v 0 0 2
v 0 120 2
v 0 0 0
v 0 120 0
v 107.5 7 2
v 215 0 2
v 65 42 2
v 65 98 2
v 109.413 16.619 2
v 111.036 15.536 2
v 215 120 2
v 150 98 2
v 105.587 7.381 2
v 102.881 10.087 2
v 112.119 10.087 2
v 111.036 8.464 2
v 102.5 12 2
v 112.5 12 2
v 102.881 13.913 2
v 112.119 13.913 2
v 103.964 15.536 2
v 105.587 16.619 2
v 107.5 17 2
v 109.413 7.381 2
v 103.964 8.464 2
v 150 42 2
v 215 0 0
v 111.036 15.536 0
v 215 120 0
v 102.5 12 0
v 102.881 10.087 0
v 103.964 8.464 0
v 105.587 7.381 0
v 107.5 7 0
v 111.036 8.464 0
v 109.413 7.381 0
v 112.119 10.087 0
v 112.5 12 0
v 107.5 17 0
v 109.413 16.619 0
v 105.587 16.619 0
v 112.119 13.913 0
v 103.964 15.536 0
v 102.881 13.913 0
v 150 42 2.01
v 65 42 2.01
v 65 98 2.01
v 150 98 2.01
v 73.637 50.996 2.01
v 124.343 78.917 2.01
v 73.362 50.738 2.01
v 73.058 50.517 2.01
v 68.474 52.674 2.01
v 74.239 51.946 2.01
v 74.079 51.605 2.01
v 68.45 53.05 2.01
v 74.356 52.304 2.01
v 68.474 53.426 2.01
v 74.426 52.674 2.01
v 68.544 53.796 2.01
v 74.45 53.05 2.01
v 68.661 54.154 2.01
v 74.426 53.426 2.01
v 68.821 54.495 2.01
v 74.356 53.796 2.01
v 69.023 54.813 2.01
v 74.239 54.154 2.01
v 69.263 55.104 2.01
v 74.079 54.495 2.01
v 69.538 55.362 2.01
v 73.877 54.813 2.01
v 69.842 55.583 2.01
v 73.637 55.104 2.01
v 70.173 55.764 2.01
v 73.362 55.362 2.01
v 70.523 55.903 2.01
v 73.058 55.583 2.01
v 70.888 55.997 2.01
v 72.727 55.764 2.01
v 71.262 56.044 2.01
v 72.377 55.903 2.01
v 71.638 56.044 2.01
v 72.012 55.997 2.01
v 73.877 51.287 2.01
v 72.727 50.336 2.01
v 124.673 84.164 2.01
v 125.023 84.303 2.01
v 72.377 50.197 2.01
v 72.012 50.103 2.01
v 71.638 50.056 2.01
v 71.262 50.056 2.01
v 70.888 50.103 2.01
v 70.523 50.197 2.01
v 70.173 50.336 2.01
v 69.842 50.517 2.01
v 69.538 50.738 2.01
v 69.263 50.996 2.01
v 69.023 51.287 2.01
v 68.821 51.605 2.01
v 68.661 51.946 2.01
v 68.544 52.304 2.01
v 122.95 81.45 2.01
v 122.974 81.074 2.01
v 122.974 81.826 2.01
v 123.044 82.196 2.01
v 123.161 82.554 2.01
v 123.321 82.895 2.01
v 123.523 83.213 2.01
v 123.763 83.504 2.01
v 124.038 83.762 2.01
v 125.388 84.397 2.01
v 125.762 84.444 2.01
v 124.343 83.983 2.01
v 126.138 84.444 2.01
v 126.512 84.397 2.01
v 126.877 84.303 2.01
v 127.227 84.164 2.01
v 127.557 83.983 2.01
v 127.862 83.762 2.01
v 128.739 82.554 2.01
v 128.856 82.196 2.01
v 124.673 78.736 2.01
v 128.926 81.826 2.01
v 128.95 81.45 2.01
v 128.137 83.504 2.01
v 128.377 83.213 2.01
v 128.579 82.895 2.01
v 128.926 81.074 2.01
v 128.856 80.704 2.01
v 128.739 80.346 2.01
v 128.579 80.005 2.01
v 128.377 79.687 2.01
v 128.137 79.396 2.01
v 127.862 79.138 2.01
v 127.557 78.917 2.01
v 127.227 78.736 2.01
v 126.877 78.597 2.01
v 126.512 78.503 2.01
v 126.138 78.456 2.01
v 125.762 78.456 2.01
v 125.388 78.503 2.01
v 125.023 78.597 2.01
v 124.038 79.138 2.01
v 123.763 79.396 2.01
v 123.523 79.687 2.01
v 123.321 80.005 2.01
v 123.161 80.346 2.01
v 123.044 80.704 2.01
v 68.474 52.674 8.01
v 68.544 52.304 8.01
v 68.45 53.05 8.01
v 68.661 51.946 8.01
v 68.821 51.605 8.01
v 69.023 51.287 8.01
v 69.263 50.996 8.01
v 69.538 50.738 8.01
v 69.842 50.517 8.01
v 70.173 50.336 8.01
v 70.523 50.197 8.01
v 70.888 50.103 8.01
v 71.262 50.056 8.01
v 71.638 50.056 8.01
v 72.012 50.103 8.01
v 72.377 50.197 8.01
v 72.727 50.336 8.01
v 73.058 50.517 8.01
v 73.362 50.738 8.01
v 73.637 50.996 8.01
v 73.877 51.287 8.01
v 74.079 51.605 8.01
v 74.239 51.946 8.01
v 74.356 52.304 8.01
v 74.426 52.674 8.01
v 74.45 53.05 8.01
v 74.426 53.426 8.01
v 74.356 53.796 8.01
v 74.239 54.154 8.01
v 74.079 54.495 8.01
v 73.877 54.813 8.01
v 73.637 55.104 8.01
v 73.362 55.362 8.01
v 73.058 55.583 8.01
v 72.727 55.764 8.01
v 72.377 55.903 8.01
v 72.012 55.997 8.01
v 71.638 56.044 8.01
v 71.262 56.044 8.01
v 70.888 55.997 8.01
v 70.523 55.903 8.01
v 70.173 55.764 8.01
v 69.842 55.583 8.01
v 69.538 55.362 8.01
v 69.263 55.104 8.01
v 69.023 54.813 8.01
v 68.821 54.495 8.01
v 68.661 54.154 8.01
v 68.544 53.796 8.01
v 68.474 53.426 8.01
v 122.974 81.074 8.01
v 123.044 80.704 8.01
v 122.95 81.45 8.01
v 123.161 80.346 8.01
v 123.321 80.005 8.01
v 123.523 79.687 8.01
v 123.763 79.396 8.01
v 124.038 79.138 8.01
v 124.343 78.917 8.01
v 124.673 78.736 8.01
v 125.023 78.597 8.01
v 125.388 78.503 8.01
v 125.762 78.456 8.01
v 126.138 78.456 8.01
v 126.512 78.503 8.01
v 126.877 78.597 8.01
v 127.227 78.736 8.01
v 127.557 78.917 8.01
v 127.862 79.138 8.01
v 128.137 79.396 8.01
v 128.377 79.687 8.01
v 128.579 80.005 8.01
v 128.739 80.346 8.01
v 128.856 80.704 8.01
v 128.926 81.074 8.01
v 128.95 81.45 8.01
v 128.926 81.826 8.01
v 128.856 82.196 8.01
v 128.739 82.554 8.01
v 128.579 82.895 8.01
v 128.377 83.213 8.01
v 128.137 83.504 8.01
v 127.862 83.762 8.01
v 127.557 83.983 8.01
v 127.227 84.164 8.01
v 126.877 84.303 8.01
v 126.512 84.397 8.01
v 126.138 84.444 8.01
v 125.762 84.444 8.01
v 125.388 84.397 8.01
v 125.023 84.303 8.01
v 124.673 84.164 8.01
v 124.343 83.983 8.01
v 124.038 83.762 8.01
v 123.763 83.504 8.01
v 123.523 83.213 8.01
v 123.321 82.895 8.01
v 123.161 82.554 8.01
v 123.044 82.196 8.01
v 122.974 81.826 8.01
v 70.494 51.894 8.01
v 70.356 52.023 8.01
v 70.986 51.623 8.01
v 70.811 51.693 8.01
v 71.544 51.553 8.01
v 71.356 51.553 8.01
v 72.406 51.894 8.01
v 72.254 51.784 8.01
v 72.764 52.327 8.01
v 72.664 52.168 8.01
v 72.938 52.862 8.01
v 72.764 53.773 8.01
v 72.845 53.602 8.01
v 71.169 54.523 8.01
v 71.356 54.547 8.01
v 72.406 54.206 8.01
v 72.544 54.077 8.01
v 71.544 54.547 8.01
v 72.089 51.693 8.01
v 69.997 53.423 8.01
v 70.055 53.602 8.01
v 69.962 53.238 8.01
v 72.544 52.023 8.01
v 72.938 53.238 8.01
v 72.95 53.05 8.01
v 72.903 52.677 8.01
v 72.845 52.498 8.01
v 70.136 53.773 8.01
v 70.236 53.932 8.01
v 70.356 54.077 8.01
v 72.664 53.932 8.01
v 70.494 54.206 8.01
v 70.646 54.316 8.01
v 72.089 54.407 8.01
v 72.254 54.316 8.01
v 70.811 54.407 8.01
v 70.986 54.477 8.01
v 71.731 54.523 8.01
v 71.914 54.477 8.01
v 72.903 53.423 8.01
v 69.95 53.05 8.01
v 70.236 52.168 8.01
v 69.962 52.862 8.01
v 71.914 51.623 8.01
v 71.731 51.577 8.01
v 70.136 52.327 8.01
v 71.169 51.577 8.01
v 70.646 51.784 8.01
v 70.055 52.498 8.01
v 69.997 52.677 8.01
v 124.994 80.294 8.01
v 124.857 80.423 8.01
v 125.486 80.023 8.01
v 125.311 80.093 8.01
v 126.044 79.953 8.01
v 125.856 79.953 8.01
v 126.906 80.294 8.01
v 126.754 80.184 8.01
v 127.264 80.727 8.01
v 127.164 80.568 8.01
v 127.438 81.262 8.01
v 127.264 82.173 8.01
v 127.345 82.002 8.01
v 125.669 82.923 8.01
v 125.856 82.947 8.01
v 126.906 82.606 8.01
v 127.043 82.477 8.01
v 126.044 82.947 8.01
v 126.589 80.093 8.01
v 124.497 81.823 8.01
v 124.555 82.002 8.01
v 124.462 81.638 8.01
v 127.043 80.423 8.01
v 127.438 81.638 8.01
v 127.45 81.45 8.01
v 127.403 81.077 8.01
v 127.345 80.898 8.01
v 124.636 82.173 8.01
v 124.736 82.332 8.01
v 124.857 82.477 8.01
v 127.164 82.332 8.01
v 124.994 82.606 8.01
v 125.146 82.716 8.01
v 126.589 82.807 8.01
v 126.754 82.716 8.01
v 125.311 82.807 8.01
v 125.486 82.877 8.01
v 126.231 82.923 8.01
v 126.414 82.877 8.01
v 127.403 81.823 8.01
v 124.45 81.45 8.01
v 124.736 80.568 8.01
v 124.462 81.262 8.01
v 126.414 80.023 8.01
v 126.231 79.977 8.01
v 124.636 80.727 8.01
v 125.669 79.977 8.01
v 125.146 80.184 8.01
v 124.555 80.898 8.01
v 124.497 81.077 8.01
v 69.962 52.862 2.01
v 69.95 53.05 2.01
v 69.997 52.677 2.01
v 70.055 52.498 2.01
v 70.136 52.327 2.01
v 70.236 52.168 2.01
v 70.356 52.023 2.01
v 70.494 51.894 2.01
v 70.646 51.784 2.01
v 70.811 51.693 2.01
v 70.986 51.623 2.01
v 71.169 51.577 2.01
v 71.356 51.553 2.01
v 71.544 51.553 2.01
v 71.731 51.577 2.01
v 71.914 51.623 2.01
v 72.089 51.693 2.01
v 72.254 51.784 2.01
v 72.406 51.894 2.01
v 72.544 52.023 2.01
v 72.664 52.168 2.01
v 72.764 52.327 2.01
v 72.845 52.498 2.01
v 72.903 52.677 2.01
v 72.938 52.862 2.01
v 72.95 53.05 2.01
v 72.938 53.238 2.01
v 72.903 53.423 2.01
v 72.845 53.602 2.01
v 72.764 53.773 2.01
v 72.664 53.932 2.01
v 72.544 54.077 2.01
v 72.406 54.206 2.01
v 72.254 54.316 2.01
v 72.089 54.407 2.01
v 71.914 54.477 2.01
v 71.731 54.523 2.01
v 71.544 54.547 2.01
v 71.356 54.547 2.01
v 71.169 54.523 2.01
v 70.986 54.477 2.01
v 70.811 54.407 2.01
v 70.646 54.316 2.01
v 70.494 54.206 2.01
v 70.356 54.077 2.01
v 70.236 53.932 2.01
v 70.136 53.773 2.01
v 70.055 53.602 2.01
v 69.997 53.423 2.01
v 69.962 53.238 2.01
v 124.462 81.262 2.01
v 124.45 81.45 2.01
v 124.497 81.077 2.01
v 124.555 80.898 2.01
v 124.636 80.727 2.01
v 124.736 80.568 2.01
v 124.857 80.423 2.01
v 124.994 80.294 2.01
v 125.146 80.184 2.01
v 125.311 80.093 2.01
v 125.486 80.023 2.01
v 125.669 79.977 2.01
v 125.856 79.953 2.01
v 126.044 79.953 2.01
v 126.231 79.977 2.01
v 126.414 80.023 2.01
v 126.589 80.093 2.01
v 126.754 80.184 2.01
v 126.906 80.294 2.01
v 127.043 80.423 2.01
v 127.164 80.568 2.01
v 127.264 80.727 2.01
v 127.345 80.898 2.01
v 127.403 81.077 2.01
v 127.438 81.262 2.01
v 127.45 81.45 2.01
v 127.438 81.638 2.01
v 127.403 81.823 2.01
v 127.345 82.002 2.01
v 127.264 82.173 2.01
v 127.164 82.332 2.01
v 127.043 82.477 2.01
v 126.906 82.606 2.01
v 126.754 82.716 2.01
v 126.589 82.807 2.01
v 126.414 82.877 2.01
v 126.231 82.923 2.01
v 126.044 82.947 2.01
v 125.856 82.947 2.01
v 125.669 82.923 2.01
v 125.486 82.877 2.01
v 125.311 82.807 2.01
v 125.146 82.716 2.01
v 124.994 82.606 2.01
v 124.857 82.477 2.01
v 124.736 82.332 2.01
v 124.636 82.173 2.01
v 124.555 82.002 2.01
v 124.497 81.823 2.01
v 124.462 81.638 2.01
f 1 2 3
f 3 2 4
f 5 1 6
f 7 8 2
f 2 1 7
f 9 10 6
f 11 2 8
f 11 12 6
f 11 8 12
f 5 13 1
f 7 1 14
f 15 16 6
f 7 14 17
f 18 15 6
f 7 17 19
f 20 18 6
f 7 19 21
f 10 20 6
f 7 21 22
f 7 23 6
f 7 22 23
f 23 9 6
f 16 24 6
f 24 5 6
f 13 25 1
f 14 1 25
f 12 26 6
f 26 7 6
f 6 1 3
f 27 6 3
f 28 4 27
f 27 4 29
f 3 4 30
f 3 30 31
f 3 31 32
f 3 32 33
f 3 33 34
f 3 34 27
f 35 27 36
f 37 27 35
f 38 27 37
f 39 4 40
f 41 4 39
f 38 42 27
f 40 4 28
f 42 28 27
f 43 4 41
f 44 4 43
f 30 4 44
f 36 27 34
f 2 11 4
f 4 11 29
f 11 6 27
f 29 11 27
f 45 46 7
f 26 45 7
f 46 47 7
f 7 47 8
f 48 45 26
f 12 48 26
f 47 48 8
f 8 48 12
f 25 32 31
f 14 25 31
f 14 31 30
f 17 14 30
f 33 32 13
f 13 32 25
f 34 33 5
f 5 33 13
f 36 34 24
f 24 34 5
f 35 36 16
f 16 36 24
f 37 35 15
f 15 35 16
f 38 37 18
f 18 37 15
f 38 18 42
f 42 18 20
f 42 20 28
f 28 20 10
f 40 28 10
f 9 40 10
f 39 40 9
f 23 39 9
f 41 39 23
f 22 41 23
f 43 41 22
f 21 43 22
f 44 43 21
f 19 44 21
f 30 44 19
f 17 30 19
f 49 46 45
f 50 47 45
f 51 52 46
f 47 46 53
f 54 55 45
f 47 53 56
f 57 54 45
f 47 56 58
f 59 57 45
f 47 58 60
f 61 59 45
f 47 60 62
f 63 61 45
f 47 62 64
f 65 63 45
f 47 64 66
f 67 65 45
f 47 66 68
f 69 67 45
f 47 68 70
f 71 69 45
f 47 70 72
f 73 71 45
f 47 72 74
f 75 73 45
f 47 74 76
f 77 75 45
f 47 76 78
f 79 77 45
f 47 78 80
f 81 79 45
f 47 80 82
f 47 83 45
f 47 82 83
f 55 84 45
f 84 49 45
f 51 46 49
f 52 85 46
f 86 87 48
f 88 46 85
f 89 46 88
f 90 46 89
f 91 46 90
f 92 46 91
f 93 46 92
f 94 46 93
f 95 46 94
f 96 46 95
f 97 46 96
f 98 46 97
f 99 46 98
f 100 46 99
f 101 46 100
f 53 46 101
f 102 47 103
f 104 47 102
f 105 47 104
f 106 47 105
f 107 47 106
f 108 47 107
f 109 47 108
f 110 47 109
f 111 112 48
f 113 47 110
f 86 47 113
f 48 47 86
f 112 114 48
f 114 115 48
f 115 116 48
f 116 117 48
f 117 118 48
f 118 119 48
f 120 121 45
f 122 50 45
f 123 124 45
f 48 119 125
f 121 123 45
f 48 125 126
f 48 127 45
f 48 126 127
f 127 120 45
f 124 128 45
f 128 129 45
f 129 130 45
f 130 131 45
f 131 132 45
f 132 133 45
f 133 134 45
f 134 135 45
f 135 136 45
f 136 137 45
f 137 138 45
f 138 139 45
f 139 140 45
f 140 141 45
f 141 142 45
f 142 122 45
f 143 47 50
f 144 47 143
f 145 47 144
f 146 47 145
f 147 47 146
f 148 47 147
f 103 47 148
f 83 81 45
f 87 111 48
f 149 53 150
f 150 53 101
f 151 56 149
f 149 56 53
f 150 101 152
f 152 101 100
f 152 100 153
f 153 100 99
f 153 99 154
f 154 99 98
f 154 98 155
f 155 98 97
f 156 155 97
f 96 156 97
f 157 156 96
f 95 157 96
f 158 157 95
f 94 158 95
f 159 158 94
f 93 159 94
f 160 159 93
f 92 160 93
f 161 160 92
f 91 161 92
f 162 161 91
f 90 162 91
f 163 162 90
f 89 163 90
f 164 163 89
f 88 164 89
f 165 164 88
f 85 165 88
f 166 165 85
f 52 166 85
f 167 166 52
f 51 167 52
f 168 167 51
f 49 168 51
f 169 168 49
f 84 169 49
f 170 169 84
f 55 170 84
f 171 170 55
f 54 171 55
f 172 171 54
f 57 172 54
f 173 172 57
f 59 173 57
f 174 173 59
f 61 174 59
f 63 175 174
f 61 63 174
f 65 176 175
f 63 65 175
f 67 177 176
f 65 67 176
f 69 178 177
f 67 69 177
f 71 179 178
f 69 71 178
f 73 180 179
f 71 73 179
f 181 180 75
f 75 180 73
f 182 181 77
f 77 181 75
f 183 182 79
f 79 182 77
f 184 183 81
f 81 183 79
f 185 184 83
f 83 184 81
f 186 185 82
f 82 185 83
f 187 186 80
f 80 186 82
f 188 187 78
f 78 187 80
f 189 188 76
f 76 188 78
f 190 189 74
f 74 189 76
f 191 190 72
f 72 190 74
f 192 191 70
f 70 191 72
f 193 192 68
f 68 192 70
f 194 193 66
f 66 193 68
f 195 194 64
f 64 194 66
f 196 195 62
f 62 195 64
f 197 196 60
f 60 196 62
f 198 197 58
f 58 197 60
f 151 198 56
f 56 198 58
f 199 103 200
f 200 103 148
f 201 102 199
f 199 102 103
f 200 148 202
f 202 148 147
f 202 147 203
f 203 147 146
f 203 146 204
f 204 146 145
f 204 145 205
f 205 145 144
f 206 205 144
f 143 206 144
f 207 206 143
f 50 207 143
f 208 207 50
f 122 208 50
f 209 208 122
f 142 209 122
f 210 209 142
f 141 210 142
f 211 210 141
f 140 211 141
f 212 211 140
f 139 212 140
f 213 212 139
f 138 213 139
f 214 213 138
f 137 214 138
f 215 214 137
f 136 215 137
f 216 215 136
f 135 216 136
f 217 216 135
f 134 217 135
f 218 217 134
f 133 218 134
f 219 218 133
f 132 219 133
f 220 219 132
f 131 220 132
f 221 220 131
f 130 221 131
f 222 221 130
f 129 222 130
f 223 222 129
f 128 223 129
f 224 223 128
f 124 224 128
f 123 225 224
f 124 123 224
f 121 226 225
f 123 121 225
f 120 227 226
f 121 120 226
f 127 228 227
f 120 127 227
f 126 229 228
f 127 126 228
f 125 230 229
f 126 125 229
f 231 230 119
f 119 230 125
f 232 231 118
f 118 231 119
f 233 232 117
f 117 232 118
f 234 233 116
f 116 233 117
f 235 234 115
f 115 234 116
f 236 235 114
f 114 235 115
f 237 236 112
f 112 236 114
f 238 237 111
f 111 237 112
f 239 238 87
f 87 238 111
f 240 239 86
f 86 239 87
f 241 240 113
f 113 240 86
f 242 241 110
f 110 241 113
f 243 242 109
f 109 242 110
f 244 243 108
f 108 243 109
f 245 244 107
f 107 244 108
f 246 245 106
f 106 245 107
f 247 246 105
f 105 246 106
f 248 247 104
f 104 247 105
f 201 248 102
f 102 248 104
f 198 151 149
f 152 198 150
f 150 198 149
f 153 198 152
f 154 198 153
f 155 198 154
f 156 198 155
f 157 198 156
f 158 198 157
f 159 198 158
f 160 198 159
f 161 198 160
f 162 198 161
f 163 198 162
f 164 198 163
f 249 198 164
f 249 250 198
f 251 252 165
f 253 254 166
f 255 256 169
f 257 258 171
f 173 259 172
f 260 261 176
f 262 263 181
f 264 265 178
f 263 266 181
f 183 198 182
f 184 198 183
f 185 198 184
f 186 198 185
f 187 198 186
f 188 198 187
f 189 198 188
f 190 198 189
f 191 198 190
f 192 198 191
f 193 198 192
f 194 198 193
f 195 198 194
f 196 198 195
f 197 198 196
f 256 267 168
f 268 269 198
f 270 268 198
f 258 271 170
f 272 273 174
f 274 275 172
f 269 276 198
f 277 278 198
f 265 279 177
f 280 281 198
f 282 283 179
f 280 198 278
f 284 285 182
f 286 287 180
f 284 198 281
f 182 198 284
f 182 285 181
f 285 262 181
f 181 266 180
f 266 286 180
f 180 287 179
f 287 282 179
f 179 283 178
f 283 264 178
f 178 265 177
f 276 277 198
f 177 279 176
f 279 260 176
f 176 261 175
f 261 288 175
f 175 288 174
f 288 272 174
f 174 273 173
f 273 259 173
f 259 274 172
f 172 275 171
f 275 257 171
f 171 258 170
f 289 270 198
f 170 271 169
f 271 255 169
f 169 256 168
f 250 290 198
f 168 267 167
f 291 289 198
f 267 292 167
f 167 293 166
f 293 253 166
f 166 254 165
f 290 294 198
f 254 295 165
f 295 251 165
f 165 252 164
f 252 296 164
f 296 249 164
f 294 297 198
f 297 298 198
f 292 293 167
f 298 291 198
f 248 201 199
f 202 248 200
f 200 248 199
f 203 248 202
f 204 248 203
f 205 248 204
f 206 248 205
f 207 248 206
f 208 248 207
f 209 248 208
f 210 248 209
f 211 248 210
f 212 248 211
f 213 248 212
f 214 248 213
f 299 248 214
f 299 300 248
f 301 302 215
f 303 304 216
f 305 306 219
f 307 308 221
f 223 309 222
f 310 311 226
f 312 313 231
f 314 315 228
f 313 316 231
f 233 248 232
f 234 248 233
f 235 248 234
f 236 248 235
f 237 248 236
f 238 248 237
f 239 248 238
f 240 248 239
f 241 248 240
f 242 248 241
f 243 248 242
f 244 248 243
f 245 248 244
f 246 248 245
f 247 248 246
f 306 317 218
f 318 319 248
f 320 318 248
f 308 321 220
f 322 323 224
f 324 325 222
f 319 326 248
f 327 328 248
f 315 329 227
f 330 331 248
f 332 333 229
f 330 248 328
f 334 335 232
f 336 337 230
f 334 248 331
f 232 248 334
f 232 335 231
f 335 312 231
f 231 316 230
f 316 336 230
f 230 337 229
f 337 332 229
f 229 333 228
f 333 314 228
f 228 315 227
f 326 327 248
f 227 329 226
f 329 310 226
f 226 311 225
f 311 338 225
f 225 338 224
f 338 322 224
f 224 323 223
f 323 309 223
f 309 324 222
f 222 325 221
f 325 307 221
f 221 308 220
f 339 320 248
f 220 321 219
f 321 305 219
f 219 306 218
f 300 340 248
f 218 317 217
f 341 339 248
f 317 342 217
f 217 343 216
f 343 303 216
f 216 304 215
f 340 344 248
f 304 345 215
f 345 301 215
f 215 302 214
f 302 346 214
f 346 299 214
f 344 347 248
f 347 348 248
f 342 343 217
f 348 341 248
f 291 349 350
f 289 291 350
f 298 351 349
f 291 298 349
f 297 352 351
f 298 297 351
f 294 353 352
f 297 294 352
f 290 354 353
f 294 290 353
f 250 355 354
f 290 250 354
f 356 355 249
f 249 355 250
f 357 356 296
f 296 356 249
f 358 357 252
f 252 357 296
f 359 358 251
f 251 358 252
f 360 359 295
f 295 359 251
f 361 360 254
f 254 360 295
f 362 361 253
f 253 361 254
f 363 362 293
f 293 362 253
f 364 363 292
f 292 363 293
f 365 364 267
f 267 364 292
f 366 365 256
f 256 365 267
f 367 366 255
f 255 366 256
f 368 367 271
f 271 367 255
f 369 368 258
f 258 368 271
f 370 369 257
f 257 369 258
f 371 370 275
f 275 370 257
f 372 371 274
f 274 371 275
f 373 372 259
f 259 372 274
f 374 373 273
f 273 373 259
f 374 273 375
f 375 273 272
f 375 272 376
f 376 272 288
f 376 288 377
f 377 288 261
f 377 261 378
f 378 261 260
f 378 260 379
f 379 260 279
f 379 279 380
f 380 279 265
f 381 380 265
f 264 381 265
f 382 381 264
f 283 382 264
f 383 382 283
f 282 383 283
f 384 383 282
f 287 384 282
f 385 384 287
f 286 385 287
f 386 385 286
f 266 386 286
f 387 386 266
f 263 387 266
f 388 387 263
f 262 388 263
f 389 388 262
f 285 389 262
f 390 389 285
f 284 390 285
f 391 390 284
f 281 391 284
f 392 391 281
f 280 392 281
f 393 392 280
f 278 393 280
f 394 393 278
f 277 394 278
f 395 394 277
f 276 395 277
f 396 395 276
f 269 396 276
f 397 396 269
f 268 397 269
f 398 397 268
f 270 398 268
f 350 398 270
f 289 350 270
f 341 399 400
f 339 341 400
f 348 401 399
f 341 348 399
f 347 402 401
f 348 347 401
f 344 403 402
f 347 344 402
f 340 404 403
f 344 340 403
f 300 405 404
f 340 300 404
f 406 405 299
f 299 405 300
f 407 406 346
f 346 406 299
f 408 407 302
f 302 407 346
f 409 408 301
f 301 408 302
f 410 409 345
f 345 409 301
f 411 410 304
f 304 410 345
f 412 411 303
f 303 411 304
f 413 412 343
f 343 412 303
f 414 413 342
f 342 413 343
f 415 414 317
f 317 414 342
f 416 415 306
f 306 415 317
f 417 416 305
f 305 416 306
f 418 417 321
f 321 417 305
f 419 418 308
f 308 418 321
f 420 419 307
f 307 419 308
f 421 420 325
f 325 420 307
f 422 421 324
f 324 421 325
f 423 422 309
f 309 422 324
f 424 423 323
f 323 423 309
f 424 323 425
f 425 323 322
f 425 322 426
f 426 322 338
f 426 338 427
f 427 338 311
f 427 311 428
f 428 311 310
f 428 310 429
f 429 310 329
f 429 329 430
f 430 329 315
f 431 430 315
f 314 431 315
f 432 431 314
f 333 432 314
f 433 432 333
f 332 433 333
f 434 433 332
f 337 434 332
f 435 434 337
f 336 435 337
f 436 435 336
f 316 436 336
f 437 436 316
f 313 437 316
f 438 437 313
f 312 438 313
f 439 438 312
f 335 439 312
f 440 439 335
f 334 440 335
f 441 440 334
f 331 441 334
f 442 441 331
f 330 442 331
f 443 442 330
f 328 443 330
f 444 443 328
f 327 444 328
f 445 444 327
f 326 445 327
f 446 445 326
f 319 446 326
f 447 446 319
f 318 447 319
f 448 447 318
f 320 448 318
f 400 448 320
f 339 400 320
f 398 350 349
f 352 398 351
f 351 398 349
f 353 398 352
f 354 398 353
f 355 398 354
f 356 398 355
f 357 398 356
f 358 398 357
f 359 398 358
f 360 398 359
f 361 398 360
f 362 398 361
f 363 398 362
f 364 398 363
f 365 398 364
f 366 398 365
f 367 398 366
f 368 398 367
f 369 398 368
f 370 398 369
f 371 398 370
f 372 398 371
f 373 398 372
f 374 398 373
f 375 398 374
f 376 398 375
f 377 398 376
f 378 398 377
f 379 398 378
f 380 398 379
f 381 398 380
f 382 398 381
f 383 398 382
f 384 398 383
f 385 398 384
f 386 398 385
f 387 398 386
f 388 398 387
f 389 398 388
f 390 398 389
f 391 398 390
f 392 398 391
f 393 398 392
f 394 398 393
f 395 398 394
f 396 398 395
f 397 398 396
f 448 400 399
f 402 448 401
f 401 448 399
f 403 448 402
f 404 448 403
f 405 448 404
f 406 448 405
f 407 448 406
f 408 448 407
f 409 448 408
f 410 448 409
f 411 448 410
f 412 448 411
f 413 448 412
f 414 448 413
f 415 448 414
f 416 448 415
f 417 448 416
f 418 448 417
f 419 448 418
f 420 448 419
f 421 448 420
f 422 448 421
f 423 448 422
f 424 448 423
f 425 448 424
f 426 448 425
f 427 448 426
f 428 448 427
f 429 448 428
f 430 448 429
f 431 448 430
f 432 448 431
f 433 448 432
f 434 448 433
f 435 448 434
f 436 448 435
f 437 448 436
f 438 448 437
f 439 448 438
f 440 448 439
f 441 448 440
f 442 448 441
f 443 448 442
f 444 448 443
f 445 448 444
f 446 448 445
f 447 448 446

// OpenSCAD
// file: ../pi_mount.scad
module Standoff(h, r1, r2){
  difference() {
    cylinder(h=h, r=r1, $fn=50);
    cylinder(h=h+0.01, r=r2, $fn=50);
  }
}

module PiMount(){
  cube([85, 56, 1]);
  translate([24.05, 16.55, 1]) Standoff(6, 3, 1.5);
  translate([78.55, 44.95, 1]) Standoff(6, 3, 1.5);
}

module RelayMount(height){
  cube([75, 55, 1]);
  inner = 1.4;
  outer = 3;
  translate([3, 3, 1]) Standoff(height, outer, inner);
  translate([72, 3, 1]) Standoff(height, outer, inner);
  translate([3, 52, 1]) Standoff(height, outer, inner);
  translate([72, 52, 1]) Standoff(height, outer, inner);
}

module BarrierStripMount(depth){
  translate([5, 11, -depth]) cylinder(h=depth+0.2, r=2, $fn=50);
  translate([120, 11, -depth]) cylinder(h=depth+0.2, r=2, $fn=50);
}

translate([-62.5, -11, 0]) difference(){
  BarrierStripMount(depth=1.5);
}
// file: ../outlet.scad
module OutletMount(depth, height) {
  translate([0, 0, -depth]){
    cylinder(h=depth+0.1, r=1.25, $fn=50);
    translate([0, height, 0]) cylinder(h=depth+0.1, r=1.25, $fn=50);
  }
}

module OutletsMount(n_outlets, spacing, outlet_depth, outlet_height){
  for (x = [0:spacing:(n_outlets - 1) * spacing]){
    translate([x, 0, 0]) OutletMount(depth=outlet_depth, height=outlet_height);
  }
}

rotate([90, 0, 0]) difference(){
  translate([-50, -50, -1]) cube([2000, 2000, 1]);
  color("blue") OutletsMount(n_outlets=4, spacing=47, outlet_depth=2, outlet_height=85);
}
// file: ../rat_trap.scad
use <outlet.scad>
use <pi_mount.scad>

module RatTrapBox(length=215, width=140, height=120, thickness=2){
  union() {
    BottomFace(length=length-thickness*2, width=width-thickness*2, thickness=thickness); 
    FrontFace(length=length, height=height, thickness=thickness, hole_length=190, hole_height=80);
    RearFace(length=length, height=height, box_width=width, thickness=thickness);
    LeftFace(width=width-thickness*2, height=height, thickness=thickness);
    RightFace(width=width-thickness*2, height=height, thickness=thickness, box_length=length);
  }
}

module FrontFace(length, height, thickness, hole_length, hole_height){
  difference() {
    cube([length, thickness, height]);
    // Make the hole
    translate([(length-hole_length)/2, -0.05, (height-hole_height)/2]) cube([hole_length, thickness+0.1, hole_height]);
    // Make outlet screw ports
    color("blue") translate([(length-141)/2, 0, (height-85)/2]){
      rotate([90, 0, 0]){
        OutletsMount(n_outlets=4, spacing=47, outlet_depth=20, outlet_height=85);
      }
    }
  }
}

module RearFace(length, height, box_width, thickness){
  translate([0, box_width-thickness, 0]){
    difference(){
      cube([length, thickness, height]);
      translate([length/2, -0.05, thickness + 10]){
        rotate([-90, 0, 0]) cylinder(h=thickness+0.1, r=5);
      }
    }
    translate([(length-85)/2 + 85, 0.99, (height-56)/2 + 56 + 10]){
      rotate([-90, 0, 180]) color("green") PiMount();
    }
  }
  
}

module BottomFace(length, width, thickness){
  translate([thickness, thickness, 0]){
  difference(){
    cube([length, width, thickness]);
    translate([(length-125)/2, 25, thickness]){
      color("orange") BarrierStripMount(depth=1.5);
    }
  }
  translate([(length-75)/2, (width-55)/2 + 10, thickness]){
    color("red") RelayMount(height=20);
  }
  }
}

module LeftFace(width, height, thickness){
  translate([0, thickness, 0]){
    cube([thickness, width, height]);
  }
}

module RightFace(width, height, thickness, box_length){
  translate([box_length-thickness, thickness, 0]){
    cube([thickness, width, height]);
    translate([0, width/2, (height-85)/2]){
      color("purple") rotate([0, -90, 0]) Standoff(h=10, r1=3, r2=1.25);
    }
    translate([0, width/2, height - (height-85)/2]){
      color("purple") rotate([0, -90, 0]) Standoff(h=10, r1=3, r2=1.25);
    }
  }
}

translate([-112.5, -75, -60]) RatTrapBox();
// main file
use <../rat_trap.scad>

rotate([-90, 0, 0]) RearFace(length=215, height=120, box_width=0, thickness=2);
